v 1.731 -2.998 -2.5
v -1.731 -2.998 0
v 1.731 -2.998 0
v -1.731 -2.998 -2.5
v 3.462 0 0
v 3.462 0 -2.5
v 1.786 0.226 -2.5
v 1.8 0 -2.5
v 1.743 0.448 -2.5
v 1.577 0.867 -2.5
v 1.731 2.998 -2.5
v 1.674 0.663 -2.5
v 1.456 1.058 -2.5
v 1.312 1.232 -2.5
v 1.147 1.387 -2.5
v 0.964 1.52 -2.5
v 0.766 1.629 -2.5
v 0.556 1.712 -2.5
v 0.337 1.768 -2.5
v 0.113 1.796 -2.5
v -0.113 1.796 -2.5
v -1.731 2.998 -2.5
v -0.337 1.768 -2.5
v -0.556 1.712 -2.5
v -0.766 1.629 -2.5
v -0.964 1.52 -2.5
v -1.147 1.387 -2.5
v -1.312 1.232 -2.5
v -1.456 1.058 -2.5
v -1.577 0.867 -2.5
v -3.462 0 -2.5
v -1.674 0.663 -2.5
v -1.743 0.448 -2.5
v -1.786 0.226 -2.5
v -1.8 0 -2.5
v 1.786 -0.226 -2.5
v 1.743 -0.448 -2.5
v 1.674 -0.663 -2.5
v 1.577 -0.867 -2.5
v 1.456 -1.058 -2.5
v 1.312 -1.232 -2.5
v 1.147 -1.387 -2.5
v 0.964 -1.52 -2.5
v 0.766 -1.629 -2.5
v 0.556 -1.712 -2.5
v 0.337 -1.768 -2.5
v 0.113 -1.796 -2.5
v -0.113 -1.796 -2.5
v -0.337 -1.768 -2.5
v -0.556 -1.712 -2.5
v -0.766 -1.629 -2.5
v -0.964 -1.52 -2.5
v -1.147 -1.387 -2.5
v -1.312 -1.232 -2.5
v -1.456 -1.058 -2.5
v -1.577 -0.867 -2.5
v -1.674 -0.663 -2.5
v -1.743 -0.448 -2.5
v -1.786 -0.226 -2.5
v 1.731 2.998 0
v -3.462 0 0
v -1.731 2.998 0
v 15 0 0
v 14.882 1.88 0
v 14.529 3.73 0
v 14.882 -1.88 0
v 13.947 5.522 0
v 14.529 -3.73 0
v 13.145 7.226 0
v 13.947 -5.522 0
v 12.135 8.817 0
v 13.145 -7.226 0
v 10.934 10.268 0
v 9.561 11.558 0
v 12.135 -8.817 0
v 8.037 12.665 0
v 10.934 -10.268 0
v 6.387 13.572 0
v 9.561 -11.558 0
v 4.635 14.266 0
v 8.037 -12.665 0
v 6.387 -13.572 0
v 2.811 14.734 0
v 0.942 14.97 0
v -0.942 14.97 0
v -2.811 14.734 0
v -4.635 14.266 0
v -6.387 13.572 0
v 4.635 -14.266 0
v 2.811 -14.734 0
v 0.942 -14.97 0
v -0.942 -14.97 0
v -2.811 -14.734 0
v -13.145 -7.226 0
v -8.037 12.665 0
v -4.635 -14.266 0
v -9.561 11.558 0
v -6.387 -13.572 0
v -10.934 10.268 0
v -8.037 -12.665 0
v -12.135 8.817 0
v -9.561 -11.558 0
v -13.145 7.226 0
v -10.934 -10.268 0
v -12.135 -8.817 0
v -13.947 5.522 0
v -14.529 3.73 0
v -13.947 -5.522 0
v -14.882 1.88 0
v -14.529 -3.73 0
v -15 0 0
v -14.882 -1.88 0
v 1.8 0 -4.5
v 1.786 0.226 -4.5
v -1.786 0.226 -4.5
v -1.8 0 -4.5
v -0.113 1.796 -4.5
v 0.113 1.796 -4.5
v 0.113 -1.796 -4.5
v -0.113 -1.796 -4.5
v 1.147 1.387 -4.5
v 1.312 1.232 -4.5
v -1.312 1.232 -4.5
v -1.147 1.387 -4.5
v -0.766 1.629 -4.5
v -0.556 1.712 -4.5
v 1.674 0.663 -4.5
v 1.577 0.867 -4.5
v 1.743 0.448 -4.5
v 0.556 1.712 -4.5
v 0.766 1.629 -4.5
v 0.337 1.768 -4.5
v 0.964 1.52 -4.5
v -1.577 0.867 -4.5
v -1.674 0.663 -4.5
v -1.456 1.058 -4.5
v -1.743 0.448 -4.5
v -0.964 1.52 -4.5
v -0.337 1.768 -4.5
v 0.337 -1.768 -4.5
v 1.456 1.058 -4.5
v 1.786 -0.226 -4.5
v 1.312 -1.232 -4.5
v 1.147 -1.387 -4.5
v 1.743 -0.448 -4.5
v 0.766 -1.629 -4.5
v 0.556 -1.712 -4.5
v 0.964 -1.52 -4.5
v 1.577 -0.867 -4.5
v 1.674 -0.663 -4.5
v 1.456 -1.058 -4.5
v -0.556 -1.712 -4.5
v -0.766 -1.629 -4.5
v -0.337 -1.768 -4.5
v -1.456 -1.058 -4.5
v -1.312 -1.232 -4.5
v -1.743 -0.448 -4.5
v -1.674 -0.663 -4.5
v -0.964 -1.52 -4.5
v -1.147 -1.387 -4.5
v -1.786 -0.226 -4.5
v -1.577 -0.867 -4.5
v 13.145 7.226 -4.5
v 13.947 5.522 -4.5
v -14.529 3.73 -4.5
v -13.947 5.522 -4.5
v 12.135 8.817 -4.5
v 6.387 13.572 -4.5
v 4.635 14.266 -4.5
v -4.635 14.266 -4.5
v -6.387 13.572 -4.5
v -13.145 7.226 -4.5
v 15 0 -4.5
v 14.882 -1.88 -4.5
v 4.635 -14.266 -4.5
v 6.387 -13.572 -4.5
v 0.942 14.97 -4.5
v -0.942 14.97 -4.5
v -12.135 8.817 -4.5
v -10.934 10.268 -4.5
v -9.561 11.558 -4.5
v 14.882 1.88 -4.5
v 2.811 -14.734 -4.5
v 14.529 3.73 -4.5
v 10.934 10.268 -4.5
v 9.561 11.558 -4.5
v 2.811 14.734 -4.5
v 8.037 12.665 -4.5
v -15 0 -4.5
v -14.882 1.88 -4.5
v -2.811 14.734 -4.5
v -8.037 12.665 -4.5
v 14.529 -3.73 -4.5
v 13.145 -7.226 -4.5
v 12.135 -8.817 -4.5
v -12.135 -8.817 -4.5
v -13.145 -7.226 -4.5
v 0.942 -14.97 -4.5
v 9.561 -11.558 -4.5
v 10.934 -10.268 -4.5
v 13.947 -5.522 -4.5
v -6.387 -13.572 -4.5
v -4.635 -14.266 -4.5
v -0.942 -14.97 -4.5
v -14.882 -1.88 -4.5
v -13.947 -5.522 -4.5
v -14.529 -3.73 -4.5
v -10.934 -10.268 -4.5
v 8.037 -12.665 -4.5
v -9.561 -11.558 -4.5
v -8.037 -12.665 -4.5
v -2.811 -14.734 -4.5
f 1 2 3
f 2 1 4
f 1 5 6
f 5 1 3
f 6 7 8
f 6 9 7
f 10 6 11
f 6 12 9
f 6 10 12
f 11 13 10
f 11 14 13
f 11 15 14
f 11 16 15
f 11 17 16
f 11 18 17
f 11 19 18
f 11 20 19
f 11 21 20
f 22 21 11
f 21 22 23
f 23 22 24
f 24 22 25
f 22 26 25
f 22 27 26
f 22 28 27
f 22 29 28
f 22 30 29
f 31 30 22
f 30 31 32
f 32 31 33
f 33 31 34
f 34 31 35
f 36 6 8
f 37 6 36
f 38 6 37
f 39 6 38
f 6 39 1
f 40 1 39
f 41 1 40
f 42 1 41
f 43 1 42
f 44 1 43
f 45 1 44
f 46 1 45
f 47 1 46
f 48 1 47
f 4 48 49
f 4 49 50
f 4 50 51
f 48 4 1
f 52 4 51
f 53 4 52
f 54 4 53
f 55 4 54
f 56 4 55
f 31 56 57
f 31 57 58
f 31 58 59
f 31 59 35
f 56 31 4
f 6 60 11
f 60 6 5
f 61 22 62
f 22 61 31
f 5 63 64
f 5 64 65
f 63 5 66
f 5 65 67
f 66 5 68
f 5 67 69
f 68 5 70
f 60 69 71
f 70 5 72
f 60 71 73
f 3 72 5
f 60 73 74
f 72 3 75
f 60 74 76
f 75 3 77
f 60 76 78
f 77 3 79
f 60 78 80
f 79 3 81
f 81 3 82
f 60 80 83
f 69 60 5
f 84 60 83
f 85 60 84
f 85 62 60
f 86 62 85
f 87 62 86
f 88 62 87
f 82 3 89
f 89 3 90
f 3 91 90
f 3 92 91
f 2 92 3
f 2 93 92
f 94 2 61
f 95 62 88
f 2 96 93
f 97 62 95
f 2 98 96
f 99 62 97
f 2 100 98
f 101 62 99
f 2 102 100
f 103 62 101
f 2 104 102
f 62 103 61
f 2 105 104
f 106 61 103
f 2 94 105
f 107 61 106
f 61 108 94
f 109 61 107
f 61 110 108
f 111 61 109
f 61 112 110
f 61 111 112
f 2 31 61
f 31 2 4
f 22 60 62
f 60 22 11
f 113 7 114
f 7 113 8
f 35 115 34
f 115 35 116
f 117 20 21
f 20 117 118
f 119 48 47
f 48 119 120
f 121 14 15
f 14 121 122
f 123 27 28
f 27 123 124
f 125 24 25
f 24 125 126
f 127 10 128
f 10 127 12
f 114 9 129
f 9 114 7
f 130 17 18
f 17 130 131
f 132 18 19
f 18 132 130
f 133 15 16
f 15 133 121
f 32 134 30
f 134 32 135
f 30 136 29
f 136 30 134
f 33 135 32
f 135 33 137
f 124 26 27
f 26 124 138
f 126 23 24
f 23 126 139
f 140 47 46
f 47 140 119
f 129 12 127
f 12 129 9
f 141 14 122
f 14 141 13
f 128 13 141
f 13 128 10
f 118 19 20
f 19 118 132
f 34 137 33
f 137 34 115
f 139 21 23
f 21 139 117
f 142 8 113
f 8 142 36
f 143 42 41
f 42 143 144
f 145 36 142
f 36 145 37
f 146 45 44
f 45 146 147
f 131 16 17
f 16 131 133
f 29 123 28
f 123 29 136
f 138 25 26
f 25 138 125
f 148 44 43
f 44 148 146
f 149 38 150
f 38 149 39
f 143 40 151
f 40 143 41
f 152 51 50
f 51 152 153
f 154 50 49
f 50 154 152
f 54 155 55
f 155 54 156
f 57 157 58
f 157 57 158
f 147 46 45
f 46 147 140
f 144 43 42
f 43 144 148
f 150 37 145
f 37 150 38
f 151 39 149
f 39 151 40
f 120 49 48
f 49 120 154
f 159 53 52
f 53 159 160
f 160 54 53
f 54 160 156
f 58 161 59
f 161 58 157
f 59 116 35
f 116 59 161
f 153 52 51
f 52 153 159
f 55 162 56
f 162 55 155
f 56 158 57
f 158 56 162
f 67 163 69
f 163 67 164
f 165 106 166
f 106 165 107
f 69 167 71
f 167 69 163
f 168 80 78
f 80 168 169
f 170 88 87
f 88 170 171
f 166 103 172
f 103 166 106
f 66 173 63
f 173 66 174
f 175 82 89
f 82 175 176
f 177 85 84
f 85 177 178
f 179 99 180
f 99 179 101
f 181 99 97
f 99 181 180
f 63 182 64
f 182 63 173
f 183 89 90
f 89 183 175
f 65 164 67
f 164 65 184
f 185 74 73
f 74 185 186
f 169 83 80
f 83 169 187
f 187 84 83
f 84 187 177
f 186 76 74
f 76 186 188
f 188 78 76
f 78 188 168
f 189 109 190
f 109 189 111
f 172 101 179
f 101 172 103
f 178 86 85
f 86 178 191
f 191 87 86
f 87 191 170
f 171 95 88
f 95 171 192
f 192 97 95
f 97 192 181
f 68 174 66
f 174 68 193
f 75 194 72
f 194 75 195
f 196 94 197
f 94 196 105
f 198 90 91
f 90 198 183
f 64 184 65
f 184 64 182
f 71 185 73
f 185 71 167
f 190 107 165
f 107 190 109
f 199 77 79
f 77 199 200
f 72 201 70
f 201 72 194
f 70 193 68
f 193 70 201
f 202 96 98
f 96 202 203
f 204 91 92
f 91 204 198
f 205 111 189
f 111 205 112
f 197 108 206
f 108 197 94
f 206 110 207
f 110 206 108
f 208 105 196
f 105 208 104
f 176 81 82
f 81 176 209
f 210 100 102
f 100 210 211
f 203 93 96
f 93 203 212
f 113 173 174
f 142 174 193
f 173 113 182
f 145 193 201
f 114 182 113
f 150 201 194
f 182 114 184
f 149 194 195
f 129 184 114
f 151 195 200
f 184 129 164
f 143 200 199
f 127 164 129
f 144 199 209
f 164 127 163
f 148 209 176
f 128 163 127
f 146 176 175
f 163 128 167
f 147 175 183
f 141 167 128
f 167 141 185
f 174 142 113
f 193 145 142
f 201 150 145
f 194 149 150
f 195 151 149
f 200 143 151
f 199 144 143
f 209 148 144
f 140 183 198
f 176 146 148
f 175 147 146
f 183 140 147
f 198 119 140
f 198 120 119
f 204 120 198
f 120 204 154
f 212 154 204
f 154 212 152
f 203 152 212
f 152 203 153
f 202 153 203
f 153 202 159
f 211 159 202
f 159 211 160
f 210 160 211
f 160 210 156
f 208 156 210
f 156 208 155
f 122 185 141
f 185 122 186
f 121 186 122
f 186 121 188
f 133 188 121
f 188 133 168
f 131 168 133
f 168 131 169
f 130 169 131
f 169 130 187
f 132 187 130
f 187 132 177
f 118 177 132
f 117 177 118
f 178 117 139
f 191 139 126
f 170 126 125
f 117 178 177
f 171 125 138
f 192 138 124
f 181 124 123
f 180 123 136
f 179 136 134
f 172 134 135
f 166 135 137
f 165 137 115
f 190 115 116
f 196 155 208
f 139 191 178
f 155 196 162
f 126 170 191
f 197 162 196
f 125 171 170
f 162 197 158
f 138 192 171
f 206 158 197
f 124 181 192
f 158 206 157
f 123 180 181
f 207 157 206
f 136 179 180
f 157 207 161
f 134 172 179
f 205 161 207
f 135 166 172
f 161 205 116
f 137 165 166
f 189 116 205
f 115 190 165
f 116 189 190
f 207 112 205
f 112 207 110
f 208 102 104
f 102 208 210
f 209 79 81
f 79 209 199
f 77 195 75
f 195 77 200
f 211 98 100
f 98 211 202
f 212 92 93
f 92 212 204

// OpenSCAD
$fn = 50;

difference() {
	union() {
		translate(v = [0, 0, -4.5]) {
			cylinder(h = 4.5, r = 15.0);
		}
	}
	union() {
		translate(v = [0, 0, 0]) {
			rotate(a = [0, 0, 0]) {
				difference() {
					union() {
						translate(v = [0, 0, -2.5]) {
							linear_extrude(height = 2.5) {
								polygon(points = [[3.4619999999999997, 0.0], [1.7310000000000003, 2.9981799479017264], [-1.7309999999999992, 2.9981799479017264], [-3.4619999999999997, 4.2397272186481365e-16], [-1.7310000000000014, -2.998179947901726], [1.7309999999999977, -2.9981799479017277]]);
							}
						}
					}
					union();
				}
			}
		}
		#translate(v = [0, 0, -100.0]) {
			cylinder(h = 200, r = 1.8);
		}
	}
}
